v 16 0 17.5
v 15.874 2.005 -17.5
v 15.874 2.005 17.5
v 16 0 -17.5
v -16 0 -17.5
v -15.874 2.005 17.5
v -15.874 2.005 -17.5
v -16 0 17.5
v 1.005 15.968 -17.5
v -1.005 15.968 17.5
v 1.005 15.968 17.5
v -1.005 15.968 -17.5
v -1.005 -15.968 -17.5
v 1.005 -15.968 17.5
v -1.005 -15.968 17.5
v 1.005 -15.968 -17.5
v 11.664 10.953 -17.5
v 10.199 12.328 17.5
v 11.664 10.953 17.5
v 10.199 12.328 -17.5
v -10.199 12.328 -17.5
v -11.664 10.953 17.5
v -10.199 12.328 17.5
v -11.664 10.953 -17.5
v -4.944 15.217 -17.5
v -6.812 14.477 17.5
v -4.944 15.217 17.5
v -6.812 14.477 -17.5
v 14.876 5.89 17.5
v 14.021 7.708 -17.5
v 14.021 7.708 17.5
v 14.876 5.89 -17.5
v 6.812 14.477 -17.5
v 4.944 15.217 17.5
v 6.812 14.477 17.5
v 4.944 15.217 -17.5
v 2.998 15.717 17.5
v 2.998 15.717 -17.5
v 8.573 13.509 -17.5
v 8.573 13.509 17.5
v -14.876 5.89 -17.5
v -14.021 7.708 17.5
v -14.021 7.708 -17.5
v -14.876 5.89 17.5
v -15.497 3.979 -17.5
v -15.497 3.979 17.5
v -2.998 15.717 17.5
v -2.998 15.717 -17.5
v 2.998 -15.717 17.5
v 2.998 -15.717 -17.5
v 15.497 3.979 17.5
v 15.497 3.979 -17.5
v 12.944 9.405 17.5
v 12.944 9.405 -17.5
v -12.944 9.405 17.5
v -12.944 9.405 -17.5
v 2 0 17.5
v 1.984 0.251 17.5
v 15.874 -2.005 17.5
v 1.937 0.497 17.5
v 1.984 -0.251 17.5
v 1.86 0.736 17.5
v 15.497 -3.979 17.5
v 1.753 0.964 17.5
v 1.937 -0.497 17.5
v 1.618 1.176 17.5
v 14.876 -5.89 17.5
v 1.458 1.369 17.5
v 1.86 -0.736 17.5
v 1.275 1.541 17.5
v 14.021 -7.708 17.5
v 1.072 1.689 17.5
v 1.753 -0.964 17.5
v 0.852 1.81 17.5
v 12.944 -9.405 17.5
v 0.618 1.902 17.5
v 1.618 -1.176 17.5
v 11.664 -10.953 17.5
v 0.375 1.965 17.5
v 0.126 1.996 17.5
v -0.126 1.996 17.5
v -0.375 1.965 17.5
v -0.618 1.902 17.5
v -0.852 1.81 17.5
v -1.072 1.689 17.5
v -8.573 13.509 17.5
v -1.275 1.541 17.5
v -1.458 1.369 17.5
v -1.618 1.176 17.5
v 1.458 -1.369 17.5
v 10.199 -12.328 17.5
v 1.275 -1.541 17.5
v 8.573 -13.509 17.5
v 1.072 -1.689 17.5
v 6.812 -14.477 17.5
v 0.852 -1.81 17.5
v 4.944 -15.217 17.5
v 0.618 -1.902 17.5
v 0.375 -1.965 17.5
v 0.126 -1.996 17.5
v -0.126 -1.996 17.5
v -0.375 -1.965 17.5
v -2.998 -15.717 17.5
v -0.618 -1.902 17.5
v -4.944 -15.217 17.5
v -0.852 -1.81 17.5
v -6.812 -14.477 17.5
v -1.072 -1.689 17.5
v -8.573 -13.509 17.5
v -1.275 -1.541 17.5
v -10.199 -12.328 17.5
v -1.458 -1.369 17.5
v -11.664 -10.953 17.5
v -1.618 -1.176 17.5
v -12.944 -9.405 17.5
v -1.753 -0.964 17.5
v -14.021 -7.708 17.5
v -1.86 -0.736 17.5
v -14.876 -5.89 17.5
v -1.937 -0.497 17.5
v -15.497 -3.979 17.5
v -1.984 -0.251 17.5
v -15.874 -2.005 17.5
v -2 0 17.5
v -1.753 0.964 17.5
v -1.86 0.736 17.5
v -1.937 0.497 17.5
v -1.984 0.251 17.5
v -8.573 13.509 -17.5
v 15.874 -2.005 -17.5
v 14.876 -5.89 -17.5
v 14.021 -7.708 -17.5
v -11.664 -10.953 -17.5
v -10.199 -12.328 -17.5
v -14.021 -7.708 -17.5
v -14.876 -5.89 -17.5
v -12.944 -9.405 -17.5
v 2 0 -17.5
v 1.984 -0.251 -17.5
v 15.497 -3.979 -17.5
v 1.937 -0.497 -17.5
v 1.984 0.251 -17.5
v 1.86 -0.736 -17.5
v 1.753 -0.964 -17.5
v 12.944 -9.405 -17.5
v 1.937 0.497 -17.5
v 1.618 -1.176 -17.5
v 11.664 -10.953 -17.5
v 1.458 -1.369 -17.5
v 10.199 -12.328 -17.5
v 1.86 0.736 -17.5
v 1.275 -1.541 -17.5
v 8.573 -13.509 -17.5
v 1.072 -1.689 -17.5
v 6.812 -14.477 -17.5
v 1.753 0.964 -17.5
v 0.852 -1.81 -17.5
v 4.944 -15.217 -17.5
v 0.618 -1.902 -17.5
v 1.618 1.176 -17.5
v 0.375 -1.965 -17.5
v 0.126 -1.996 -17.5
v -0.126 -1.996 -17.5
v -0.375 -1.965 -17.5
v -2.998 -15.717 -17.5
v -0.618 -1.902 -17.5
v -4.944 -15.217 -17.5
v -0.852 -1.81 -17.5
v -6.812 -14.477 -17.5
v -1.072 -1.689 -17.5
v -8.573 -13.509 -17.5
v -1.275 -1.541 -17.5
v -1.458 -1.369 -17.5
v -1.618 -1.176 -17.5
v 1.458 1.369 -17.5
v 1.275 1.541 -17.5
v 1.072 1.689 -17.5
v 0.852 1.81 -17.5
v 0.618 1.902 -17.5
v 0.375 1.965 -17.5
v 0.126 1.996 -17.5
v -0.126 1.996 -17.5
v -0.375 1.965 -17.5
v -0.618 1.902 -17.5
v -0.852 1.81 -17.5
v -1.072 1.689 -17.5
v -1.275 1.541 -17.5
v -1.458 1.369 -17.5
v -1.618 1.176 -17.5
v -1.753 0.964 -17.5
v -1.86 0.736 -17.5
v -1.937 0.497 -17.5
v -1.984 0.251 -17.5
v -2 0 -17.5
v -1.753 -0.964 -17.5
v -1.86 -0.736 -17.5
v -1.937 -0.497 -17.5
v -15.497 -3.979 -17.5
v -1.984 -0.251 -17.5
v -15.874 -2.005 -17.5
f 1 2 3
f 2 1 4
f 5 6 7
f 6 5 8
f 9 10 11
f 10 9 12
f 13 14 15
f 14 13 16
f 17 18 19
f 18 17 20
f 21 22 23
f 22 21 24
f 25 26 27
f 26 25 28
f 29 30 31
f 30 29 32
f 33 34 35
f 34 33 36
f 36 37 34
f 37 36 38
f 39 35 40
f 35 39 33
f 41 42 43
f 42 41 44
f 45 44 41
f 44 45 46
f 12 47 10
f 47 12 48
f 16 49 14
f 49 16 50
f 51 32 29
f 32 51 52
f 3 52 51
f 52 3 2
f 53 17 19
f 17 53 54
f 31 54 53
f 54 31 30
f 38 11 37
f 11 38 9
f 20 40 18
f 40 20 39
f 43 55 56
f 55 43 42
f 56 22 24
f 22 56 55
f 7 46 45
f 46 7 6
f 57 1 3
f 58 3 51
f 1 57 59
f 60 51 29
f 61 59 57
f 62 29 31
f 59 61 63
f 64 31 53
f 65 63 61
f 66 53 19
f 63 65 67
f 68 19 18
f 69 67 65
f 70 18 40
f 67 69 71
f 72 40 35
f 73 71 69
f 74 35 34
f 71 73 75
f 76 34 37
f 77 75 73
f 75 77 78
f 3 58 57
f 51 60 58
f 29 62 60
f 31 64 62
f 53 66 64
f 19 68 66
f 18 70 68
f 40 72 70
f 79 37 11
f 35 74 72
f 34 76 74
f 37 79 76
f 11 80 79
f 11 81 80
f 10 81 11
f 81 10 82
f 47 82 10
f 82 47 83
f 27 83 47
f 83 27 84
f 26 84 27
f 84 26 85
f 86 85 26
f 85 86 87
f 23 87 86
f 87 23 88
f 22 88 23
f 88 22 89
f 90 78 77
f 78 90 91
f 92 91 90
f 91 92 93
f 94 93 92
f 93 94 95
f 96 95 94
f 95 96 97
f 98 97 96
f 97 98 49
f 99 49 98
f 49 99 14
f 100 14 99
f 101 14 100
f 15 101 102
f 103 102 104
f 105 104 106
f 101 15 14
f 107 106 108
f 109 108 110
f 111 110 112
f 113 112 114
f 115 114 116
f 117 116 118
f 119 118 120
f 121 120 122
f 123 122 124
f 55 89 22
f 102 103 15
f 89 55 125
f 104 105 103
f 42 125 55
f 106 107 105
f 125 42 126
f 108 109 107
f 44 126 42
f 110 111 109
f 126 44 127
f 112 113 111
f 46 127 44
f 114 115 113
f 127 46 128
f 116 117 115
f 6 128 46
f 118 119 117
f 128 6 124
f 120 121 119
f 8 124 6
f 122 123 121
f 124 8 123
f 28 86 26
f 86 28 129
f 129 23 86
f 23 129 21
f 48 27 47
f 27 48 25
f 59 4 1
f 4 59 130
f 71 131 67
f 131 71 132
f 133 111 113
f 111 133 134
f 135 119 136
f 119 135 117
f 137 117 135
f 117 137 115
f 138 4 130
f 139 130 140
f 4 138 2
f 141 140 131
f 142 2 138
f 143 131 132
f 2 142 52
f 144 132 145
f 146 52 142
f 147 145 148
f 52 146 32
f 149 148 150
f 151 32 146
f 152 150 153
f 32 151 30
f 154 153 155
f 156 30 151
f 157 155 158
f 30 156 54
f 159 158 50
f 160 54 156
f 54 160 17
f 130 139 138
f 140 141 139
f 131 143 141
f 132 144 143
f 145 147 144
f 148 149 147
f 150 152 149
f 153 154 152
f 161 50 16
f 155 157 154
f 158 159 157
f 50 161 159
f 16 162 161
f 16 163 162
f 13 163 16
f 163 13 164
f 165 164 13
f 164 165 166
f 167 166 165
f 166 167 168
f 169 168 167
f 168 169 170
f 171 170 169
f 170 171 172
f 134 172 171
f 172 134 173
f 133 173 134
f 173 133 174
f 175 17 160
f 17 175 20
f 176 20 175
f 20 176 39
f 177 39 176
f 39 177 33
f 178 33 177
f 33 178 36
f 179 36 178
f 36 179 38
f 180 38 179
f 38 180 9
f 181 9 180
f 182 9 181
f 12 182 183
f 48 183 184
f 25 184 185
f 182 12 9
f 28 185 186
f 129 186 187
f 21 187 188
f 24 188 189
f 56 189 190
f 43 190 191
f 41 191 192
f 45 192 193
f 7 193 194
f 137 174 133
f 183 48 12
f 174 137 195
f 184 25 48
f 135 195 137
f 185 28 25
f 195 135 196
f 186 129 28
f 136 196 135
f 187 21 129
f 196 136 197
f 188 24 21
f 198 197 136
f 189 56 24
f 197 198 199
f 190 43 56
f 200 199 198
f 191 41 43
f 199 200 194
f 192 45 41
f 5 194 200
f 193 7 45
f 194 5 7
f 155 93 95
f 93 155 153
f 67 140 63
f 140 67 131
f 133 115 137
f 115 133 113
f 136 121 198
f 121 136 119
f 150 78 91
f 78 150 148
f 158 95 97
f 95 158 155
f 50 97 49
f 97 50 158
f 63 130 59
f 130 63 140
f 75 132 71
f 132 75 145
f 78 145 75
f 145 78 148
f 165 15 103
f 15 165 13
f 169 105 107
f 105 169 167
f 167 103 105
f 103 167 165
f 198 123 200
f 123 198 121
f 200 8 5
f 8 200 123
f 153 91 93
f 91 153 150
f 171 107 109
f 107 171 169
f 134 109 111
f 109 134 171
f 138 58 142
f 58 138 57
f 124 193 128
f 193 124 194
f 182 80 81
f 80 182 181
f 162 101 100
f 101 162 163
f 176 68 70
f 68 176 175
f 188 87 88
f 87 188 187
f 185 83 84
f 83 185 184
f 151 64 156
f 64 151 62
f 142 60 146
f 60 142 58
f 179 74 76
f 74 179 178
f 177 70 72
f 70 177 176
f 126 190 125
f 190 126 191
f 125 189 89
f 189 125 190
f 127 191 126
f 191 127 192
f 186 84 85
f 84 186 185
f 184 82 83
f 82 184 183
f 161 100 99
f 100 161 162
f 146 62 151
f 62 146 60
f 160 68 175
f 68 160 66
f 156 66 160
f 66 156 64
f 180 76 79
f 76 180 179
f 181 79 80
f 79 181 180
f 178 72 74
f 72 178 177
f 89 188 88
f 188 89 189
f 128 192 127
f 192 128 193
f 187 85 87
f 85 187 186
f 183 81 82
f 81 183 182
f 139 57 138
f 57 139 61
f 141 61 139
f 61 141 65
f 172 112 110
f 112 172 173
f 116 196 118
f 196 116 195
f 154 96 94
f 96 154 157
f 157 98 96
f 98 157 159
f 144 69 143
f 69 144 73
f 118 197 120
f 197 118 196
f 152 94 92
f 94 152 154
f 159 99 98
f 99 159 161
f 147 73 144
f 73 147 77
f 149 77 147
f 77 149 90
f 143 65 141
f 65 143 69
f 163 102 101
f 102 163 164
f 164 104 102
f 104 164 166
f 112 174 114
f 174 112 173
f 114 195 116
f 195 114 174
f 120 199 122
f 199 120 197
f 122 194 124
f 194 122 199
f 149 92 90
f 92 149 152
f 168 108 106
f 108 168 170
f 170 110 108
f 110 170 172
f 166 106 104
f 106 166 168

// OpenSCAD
$fn = 50;


difference() {
	union() {
		translate(v = [0, 0, -17.5000000000]) {
			cylinder(h = 35, r = 16.0000000000);
		}
	}
	union() {
		translate(v = [0, 0, -100.0000000000]) {
			cylinder(h = 200, r = 2);
		}
	}
}
